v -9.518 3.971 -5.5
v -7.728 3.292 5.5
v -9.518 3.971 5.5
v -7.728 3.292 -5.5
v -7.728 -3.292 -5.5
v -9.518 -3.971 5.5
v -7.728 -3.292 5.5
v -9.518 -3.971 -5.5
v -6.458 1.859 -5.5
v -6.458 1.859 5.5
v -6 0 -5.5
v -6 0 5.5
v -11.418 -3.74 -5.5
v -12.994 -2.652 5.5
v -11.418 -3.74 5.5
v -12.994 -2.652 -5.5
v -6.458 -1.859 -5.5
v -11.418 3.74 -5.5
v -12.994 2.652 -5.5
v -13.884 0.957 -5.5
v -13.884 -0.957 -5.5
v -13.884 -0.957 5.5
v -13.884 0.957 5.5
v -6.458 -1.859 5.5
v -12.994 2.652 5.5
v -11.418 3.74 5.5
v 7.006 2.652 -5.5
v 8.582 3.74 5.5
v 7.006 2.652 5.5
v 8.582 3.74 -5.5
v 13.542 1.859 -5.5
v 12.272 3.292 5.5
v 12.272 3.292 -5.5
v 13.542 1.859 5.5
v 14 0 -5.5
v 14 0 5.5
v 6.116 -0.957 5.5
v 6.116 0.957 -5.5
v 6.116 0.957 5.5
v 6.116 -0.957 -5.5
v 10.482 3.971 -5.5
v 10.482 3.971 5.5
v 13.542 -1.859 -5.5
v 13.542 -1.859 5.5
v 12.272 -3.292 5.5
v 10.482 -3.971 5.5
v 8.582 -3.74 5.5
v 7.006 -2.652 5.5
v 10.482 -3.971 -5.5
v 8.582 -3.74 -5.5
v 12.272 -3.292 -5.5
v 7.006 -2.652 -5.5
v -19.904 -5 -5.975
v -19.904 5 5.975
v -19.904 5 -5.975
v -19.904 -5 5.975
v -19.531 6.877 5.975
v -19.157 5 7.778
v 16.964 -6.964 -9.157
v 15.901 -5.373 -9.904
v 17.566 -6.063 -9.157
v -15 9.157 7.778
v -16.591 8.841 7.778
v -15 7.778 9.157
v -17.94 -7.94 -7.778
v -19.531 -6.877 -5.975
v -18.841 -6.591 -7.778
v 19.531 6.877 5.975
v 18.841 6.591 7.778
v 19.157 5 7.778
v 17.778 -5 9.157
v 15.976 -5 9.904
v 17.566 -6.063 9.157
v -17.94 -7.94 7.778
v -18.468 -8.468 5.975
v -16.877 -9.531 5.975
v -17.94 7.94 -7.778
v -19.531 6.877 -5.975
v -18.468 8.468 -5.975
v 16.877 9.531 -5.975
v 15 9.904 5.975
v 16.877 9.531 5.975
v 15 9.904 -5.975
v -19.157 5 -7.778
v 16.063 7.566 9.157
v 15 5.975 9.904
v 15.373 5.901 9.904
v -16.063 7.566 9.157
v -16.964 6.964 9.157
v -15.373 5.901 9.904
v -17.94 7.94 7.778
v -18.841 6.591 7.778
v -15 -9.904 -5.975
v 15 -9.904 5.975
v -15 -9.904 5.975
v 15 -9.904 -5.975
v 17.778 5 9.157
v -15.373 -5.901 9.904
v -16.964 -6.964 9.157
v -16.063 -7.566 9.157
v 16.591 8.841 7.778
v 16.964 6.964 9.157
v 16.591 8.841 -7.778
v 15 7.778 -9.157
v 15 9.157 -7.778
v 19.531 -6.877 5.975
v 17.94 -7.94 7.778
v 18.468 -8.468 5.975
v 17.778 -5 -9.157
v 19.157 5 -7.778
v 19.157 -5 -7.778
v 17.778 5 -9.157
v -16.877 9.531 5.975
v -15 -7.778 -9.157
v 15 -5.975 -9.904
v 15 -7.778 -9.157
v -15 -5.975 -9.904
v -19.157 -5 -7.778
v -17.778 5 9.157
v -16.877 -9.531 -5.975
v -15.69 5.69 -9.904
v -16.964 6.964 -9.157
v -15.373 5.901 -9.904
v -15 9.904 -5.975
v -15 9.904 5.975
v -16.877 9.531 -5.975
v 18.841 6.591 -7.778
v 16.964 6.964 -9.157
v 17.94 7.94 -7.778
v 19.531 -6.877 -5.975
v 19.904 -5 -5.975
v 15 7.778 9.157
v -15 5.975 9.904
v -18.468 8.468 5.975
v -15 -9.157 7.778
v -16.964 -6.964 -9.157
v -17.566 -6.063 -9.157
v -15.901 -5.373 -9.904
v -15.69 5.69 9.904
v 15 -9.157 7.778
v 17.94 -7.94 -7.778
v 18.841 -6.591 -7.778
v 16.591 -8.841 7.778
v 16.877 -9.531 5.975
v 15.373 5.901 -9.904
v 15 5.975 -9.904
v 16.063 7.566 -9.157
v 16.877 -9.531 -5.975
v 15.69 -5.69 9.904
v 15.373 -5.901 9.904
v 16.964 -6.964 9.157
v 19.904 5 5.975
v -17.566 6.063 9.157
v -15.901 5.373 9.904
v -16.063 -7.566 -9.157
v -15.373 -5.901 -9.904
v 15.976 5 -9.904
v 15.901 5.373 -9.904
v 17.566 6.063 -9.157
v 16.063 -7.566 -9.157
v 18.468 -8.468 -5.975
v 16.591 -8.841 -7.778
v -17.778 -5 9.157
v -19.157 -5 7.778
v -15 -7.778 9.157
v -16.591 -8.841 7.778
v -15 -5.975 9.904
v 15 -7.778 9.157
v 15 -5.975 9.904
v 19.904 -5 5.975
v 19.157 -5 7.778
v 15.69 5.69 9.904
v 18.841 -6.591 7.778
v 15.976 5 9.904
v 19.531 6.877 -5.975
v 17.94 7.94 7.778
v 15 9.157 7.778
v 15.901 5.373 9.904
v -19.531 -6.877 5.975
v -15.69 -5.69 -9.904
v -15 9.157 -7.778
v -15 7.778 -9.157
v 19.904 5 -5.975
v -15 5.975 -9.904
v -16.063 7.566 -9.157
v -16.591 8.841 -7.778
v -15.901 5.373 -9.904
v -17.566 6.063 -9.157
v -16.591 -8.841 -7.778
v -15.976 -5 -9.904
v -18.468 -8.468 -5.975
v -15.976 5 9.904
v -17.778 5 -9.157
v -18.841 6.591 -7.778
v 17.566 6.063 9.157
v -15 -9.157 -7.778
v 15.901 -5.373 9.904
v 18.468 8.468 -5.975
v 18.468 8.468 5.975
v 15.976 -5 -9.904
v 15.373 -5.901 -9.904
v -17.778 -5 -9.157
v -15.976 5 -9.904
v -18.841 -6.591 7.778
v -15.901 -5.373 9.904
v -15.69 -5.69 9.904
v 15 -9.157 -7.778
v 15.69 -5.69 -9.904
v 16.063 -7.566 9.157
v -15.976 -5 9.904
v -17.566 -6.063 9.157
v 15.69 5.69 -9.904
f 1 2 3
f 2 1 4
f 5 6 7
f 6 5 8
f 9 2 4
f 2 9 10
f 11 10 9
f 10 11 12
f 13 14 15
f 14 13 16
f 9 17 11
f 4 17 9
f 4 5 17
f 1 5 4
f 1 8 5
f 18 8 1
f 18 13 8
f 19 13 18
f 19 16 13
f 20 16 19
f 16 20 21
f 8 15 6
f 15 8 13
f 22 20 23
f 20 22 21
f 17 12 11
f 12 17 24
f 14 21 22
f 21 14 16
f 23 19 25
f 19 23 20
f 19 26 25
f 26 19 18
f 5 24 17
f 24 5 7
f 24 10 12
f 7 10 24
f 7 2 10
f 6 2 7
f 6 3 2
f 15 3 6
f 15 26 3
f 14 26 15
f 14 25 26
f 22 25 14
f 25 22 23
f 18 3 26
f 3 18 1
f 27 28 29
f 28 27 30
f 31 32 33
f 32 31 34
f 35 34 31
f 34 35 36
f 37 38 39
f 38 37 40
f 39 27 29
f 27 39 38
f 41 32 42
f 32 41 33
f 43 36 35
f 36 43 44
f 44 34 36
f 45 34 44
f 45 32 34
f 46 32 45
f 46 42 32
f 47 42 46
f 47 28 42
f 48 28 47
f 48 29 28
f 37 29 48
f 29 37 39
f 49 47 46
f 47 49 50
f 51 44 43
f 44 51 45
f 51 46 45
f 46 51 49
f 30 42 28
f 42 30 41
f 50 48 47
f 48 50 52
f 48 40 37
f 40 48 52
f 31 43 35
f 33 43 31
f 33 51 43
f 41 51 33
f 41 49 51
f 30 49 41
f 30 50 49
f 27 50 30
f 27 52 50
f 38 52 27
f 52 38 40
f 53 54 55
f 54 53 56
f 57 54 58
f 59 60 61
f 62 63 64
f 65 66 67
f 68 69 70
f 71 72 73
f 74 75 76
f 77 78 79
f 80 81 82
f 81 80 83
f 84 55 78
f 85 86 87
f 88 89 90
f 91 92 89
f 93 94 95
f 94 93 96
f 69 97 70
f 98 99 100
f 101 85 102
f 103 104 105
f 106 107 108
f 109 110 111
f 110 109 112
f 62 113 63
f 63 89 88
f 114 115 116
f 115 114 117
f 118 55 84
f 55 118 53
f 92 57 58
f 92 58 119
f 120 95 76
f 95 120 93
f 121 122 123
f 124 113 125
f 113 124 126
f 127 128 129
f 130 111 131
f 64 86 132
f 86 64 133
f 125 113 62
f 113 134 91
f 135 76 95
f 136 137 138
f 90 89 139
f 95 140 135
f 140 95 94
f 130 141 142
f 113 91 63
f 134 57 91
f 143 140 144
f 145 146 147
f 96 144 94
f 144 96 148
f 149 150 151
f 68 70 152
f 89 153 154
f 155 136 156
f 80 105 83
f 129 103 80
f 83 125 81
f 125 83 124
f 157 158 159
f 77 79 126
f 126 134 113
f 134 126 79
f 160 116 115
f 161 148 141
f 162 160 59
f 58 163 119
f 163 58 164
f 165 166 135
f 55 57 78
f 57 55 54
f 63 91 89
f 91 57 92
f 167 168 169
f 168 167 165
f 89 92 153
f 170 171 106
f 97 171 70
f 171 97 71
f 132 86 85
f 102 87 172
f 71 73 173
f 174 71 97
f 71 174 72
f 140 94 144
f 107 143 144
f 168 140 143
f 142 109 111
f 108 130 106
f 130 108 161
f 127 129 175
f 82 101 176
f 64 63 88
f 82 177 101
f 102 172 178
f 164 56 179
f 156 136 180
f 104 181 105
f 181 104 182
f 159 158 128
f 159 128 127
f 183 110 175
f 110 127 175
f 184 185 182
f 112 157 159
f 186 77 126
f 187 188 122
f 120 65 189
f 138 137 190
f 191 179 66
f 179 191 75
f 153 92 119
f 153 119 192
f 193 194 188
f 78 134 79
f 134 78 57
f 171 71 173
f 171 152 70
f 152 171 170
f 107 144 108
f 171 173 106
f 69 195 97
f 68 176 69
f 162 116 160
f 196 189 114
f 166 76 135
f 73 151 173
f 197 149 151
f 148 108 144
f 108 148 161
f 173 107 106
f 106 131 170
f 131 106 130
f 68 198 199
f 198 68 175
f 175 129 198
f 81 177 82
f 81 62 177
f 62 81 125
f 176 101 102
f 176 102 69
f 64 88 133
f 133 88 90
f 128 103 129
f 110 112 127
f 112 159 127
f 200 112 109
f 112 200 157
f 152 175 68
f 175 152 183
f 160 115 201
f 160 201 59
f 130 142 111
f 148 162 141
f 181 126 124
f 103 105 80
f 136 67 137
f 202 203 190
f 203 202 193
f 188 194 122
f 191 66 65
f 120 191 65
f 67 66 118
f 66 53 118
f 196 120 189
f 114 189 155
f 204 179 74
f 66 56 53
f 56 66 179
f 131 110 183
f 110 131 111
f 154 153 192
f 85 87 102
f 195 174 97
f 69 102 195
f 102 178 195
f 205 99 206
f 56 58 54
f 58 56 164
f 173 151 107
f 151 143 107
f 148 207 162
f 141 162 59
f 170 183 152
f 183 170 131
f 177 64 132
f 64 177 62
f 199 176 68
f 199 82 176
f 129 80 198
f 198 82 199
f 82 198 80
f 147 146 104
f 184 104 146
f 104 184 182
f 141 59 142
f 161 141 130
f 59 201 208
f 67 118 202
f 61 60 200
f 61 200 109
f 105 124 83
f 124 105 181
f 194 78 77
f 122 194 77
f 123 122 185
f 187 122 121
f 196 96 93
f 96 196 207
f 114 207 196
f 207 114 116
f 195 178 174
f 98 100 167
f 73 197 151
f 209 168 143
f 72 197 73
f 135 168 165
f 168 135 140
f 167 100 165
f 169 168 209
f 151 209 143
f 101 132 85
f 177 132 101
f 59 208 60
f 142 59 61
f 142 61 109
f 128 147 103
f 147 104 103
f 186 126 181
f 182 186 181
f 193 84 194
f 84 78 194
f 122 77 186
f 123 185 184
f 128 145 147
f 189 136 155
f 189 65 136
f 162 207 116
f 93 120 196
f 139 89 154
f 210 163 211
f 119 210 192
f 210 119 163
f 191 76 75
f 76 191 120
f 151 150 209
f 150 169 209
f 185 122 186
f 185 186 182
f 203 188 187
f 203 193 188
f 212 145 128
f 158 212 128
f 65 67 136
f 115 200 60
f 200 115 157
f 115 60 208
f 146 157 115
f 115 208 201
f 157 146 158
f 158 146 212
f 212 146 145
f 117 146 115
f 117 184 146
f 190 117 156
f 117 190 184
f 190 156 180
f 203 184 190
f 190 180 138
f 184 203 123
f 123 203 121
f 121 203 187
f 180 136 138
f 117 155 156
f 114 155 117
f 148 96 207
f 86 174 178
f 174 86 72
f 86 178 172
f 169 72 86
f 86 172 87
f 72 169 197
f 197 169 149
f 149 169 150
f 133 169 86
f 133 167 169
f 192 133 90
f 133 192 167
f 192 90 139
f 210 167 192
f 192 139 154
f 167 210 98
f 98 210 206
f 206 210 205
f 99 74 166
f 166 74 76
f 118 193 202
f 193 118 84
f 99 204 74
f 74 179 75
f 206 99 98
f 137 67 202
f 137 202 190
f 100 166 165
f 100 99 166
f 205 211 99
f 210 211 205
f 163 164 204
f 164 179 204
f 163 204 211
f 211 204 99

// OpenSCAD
// Parameters
block_length = 40; // Length of the central block
block_width = 20;  // Width of the central block
block_height = 10; // Height of the central block
hole_diameter = 8; // Diameter of the circular holes
hole_spacing = 20; // Distance between the centers of the holes
corner_radius = 5; // Radius for rounded edges

// Central block module
module central_block() {
    // Create the main block with rounded edges
    difference() {
        // Rounded rectangular block
        minkowski() {
            cube([block_length - 2 * corner_radius, block_width - 2 * corner_radius, block_height], center = true);
            sphere(corner_radius);
        }
        // Subtract the two circular holes
        for (i = [-hole_spacing / 2, hole_spacing / 2]) {
            translate([i, 0, 0])
                cylinder(h = block_height + 1, r = hole_diameter / 2, center = true);
        }
    }
}

// Render the central block
central_block();
